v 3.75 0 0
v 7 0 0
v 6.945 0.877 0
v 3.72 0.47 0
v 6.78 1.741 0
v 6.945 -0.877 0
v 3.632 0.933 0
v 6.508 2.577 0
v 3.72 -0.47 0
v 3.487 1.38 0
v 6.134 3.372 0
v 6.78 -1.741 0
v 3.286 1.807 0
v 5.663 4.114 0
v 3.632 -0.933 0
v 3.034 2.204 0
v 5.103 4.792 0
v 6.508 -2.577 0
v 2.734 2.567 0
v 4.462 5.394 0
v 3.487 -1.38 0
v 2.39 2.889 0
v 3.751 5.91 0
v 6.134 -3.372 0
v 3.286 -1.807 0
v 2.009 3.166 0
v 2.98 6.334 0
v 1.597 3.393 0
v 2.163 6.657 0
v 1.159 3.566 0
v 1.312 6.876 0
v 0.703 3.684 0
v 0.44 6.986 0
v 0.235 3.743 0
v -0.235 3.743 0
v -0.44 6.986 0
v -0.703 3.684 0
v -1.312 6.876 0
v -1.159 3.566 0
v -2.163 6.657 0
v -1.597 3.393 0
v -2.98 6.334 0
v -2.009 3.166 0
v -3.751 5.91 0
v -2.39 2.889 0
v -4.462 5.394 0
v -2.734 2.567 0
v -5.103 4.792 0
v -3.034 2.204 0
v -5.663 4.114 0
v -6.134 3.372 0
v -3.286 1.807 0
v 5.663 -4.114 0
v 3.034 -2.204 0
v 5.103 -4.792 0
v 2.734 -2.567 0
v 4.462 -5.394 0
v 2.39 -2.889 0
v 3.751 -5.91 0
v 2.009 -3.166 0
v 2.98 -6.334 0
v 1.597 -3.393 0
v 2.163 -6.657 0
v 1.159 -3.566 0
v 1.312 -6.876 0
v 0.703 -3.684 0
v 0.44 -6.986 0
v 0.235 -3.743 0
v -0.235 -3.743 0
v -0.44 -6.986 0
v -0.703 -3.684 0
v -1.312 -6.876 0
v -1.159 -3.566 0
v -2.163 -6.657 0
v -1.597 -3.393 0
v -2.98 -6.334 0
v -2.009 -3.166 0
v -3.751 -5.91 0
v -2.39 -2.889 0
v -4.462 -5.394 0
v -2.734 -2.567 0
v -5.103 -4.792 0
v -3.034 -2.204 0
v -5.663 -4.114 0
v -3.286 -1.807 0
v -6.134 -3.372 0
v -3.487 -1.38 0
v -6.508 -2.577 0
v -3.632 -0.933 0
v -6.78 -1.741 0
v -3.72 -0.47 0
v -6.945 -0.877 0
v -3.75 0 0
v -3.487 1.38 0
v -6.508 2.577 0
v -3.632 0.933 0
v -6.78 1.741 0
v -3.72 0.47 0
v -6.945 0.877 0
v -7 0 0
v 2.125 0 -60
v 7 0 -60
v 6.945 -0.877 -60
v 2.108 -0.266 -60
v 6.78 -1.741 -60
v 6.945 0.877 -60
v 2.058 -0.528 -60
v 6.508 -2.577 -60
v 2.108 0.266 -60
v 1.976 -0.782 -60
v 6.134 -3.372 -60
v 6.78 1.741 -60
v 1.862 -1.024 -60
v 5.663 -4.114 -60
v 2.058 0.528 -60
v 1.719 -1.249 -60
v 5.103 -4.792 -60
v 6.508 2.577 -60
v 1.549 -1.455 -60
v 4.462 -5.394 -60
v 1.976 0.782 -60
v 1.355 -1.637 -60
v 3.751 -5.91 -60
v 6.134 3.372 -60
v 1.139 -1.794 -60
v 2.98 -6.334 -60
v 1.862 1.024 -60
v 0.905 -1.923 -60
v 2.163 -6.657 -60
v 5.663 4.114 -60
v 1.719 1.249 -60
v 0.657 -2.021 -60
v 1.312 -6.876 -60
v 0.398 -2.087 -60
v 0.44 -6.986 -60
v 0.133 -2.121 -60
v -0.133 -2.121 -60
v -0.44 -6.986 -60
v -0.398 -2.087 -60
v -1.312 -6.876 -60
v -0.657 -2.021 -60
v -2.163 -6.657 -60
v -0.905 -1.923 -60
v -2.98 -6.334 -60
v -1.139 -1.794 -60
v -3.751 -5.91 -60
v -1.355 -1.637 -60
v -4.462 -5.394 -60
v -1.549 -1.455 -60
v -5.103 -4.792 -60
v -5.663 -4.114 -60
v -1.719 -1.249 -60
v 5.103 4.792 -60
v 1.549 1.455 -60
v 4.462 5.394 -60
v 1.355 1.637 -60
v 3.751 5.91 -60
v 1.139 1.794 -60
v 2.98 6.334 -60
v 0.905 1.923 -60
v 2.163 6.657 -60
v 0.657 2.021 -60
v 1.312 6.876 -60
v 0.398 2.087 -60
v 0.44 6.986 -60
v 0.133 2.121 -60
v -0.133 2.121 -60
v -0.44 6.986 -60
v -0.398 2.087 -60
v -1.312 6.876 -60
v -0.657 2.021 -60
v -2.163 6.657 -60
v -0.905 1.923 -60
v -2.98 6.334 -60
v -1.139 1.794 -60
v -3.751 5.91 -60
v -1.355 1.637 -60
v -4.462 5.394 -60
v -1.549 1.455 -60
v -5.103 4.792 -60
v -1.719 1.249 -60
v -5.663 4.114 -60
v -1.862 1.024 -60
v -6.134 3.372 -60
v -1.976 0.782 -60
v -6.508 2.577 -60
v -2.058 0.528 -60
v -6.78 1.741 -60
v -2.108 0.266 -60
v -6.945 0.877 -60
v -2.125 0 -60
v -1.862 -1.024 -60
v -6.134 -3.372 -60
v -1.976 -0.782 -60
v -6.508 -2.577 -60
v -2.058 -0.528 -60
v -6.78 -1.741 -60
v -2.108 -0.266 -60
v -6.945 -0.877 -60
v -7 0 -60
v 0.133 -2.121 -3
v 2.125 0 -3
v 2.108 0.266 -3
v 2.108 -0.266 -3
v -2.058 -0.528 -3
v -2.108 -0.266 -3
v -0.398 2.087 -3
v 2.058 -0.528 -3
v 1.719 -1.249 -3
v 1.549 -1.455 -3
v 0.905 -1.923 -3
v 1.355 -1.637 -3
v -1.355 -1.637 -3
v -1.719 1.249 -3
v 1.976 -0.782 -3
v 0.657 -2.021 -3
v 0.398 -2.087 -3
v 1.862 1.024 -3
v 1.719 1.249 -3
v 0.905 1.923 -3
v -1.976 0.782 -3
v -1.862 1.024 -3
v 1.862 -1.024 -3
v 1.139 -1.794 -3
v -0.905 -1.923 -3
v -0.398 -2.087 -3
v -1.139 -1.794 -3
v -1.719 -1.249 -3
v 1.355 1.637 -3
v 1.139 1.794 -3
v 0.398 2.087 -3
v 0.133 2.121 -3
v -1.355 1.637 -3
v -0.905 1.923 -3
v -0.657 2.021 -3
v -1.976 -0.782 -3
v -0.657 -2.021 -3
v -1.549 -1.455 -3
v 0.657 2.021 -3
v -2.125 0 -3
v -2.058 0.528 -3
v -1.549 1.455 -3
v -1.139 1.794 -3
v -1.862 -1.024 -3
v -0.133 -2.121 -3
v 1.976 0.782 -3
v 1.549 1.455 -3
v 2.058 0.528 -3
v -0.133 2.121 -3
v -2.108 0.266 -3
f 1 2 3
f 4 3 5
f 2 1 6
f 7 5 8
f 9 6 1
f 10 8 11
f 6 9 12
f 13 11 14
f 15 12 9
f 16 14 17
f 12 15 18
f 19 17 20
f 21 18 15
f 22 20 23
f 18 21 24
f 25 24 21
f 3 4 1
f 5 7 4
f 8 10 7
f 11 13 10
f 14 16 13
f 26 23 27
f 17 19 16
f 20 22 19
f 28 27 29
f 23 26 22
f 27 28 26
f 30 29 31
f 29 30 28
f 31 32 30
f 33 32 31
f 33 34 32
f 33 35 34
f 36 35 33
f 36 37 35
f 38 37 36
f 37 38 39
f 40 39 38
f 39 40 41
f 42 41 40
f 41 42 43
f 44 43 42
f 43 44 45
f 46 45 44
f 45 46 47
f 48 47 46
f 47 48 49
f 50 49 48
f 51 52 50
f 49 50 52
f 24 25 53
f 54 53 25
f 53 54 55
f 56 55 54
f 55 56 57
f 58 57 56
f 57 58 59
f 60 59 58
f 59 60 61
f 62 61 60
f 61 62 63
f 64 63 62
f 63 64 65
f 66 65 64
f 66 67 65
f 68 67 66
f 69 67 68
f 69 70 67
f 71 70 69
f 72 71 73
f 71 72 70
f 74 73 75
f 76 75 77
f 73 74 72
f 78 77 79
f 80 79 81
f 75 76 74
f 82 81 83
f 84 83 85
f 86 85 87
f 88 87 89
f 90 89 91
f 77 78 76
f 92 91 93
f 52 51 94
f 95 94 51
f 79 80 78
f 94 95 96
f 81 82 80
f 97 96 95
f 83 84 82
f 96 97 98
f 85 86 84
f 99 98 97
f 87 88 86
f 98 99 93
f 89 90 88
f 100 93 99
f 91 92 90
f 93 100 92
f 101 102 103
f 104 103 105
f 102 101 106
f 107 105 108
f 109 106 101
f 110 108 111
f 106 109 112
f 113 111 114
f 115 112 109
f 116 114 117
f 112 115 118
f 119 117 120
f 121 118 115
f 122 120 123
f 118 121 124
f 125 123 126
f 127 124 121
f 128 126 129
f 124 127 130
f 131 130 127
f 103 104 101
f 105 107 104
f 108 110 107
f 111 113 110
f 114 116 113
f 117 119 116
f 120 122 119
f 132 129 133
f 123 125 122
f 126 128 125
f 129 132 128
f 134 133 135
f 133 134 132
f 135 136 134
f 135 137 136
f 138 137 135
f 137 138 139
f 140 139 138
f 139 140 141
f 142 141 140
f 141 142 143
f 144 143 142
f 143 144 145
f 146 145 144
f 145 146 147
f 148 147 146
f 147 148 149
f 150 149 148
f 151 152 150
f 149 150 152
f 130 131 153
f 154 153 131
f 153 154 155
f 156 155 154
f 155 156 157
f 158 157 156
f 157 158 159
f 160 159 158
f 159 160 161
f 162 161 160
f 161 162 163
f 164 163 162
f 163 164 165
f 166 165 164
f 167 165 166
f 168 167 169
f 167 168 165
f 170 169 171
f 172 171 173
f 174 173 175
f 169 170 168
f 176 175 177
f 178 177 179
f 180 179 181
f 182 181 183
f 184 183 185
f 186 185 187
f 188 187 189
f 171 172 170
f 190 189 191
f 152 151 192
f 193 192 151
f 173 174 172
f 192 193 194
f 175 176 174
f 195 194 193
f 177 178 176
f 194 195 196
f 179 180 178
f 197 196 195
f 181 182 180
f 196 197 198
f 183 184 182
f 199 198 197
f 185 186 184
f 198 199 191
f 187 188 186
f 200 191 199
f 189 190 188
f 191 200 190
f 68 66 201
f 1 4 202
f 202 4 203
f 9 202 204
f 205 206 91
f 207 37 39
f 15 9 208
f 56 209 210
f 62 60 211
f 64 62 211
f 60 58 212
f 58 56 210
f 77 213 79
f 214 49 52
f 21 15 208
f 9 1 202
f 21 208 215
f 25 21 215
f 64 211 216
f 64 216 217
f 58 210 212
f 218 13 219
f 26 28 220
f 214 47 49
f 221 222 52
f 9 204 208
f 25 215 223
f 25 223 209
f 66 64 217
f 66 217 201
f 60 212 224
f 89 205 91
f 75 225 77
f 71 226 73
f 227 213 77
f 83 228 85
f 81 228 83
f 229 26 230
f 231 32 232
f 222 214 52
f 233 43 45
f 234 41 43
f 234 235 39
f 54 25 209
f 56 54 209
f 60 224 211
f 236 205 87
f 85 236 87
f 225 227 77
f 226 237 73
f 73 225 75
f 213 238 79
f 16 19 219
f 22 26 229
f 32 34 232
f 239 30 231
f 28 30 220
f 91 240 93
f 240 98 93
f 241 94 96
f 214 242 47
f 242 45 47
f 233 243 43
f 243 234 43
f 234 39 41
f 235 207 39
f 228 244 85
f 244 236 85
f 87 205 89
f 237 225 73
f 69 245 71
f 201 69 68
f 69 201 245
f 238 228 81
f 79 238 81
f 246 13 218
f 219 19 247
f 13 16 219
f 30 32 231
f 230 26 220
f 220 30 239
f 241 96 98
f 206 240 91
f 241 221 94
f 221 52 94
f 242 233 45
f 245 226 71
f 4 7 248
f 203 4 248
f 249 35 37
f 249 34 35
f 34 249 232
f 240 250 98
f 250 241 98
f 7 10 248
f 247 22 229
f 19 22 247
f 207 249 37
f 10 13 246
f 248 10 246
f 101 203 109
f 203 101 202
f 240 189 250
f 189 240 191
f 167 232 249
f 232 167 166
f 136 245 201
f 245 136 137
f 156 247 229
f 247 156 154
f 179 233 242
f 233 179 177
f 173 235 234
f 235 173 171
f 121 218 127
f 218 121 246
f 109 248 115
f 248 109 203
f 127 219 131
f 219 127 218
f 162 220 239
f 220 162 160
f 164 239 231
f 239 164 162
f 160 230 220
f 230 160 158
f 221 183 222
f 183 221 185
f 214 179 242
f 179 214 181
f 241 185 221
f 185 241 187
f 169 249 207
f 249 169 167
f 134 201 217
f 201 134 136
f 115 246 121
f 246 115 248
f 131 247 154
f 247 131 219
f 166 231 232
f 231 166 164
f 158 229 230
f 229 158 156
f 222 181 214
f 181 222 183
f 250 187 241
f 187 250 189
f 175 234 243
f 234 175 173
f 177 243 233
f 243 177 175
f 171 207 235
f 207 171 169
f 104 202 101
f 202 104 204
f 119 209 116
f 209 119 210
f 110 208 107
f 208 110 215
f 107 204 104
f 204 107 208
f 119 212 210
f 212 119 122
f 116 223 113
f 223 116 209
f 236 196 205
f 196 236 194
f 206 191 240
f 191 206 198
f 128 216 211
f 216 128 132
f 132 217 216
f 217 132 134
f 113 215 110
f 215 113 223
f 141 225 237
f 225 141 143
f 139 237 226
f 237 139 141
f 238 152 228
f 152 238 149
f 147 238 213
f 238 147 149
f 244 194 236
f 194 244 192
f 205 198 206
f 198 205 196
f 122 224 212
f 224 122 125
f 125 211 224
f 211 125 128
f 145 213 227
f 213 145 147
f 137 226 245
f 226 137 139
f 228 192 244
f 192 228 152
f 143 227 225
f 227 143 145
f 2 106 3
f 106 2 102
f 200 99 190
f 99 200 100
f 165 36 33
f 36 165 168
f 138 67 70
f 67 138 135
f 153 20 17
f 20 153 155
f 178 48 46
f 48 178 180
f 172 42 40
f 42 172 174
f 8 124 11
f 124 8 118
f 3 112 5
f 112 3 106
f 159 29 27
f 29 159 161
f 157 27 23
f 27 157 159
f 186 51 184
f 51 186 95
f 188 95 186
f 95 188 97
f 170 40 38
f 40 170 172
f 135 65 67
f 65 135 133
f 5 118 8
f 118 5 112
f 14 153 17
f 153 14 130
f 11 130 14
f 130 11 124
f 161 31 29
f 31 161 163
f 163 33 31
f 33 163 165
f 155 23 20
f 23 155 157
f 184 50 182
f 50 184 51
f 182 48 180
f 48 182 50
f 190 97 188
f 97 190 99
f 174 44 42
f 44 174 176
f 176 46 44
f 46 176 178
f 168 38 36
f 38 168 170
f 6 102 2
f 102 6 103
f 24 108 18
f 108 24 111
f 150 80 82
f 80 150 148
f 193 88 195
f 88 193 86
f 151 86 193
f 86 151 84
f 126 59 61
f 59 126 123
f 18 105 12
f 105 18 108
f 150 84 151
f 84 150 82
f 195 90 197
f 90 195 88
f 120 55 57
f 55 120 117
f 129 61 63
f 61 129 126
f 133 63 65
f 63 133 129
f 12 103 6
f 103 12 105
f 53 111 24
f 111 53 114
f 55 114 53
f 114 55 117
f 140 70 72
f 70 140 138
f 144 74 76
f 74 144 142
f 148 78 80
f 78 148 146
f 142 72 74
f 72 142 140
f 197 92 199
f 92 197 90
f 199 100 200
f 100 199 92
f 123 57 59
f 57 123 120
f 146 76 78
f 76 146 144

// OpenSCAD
$fn = 50;


difference() {
	union() {
		translate(v = [0, 0, -60.0000000000]) {
			cylinder(h = 60, r = 7.0000000000);
		}
	}
	union() {
		translate(v = [0, 0, 0]) {
			rotate(a = [0, 0, 0]) {
				difference() {
					union() {
						#translate(v = [0, 0, -60.0000000000]) {
							cylinder(h = 60, r = 2.0000000000);
						}
						#translate(v = [0, 0, -3]) {
							cylinder(h = 3, r1 = 2.1250000000, r2 = 3.7500000000);
						}
						#translate(v = [0, 0, -60.0000000000]) {
							cylinder(h = 60, r = 2.1250000000);
						}
						#translate(v = [0, 0, -60.0000000000]) {
							cylinder(h = 60, r = 2.0000000000);
						}
					}
					union();
				}
			}
		}
	}
}
